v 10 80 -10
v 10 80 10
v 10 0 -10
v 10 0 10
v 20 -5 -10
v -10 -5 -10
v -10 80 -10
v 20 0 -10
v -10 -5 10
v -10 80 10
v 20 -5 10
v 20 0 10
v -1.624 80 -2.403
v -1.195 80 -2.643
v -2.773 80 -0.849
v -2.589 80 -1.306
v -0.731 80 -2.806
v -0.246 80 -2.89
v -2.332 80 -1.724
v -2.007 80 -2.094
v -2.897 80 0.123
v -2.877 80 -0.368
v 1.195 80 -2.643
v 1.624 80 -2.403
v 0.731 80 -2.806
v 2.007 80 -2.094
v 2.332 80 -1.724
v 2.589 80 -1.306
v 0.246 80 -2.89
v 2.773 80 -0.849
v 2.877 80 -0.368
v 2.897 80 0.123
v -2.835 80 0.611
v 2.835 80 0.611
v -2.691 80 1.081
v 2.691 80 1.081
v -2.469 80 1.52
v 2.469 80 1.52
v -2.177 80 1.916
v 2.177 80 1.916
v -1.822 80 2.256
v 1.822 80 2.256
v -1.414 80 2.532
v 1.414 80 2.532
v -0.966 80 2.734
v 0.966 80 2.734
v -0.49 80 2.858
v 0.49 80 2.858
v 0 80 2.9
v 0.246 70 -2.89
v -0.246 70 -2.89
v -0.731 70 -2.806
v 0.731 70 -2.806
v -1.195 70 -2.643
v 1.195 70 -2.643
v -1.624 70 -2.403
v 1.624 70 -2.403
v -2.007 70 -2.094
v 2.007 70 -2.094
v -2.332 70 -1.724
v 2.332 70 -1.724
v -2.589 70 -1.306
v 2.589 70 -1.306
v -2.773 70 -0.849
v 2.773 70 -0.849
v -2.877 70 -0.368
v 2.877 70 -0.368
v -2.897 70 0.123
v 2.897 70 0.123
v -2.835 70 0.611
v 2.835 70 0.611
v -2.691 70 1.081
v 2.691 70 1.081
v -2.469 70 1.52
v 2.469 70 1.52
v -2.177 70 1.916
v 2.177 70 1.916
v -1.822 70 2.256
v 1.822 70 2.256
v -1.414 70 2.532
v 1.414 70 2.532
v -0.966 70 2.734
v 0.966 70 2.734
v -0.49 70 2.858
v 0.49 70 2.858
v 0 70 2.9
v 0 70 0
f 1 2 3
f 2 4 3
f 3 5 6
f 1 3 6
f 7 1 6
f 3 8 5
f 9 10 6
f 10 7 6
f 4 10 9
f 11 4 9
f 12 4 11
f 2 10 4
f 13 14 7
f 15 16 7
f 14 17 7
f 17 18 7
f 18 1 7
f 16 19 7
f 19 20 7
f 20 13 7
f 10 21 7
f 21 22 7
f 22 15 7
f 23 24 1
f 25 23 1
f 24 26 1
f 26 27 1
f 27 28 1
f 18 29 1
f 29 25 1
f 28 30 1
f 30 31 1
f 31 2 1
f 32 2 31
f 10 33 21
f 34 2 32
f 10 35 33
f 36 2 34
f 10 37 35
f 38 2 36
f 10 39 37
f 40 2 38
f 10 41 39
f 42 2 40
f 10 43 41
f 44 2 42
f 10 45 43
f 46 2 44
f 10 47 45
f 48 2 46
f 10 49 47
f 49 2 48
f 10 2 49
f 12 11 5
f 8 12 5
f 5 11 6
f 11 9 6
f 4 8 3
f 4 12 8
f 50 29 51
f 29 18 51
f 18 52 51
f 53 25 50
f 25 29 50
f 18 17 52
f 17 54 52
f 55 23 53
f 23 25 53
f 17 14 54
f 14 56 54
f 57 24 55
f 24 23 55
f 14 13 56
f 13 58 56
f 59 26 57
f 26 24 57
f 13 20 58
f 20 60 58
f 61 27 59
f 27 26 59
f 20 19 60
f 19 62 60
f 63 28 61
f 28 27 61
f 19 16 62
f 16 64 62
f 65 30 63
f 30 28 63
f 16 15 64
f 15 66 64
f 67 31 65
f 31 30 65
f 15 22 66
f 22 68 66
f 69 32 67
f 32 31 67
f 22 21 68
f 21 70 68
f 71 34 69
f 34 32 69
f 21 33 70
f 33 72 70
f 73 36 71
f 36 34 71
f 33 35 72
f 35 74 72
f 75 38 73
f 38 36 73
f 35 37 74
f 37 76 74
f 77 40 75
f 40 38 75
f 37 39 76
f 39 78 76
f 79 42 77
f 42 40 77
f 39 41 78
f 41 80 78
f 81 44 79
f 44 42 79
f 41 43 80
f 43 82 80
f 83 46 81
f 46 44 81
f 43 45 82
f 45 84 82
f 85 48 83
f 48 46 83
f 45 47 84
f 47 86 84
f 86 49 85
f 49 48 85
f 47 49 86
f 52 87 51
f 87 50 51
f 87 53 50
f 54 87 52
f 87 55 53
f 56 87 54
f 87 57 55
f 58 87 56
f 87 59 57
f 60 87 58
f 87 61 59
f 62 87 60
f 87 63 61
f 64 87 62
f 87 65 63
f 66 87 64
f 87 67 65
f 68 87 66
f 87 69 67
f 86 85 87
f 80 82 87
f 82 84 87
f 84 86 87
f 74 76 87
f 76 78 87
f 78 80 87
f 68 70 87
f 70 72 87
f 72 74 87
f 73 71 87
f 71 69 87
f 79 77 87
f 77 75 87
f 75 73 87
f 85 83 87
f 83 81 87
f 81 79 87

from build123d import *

# Parameters (mm, degrees)
SKETCH_1_W          = 20
SKETCH_1_H          = 20
EXTRUDE_1_DEPTH     = 80
SKETCH_3_W          = 30
SKETCH_3_H          = 20
EXTRUDE_2_DEPTH     = 5
SKETCH_4_R          = 2.9
CUT_EXTRUDE_1_DEPTH = 10


with BuildPart() as part:
    # 草图1 → 凸台-拉伸1 (new body)
    with BuildSketch(Plane(origin=(0, 0, 0), x_dir=(1, 0, 0), z_dir=(0, 1, 0))):
        Rectangle(SKETCH_1_W, SKETCH_1_H)
    extrude(amount=EXTRUDE_1_DEPTH)

    # 草图3 → 凸台-拉伸2 (add)
    with BuildSketch(Plane(origin=(0, 0, 0), x_dir=(-1, 0, 0), z_dir=(0, -1, 0))):
        with Locations((-5, 0)):
            Rectangle(SKETCH_3_W, SKETCH_3_H)
    extrude(amount=EXTRUDE_2_DEPTH)

    # 草图4 → 切除-拉伸1 (cut)
    with BuildSketch(Plane(origin=(0, 80, 0), x_dir=(1, 0, 0), z_dir=(0, 1, 0))):
        with Locations(Location((0, 0, 0), (0, 0, 270))):
            Circle(SKETCH_4_R)
    extrude(amount=-CUT_EXTRUDE_1_DEPTH, mode=Mode.SUBTRACT)


solid = part.part
